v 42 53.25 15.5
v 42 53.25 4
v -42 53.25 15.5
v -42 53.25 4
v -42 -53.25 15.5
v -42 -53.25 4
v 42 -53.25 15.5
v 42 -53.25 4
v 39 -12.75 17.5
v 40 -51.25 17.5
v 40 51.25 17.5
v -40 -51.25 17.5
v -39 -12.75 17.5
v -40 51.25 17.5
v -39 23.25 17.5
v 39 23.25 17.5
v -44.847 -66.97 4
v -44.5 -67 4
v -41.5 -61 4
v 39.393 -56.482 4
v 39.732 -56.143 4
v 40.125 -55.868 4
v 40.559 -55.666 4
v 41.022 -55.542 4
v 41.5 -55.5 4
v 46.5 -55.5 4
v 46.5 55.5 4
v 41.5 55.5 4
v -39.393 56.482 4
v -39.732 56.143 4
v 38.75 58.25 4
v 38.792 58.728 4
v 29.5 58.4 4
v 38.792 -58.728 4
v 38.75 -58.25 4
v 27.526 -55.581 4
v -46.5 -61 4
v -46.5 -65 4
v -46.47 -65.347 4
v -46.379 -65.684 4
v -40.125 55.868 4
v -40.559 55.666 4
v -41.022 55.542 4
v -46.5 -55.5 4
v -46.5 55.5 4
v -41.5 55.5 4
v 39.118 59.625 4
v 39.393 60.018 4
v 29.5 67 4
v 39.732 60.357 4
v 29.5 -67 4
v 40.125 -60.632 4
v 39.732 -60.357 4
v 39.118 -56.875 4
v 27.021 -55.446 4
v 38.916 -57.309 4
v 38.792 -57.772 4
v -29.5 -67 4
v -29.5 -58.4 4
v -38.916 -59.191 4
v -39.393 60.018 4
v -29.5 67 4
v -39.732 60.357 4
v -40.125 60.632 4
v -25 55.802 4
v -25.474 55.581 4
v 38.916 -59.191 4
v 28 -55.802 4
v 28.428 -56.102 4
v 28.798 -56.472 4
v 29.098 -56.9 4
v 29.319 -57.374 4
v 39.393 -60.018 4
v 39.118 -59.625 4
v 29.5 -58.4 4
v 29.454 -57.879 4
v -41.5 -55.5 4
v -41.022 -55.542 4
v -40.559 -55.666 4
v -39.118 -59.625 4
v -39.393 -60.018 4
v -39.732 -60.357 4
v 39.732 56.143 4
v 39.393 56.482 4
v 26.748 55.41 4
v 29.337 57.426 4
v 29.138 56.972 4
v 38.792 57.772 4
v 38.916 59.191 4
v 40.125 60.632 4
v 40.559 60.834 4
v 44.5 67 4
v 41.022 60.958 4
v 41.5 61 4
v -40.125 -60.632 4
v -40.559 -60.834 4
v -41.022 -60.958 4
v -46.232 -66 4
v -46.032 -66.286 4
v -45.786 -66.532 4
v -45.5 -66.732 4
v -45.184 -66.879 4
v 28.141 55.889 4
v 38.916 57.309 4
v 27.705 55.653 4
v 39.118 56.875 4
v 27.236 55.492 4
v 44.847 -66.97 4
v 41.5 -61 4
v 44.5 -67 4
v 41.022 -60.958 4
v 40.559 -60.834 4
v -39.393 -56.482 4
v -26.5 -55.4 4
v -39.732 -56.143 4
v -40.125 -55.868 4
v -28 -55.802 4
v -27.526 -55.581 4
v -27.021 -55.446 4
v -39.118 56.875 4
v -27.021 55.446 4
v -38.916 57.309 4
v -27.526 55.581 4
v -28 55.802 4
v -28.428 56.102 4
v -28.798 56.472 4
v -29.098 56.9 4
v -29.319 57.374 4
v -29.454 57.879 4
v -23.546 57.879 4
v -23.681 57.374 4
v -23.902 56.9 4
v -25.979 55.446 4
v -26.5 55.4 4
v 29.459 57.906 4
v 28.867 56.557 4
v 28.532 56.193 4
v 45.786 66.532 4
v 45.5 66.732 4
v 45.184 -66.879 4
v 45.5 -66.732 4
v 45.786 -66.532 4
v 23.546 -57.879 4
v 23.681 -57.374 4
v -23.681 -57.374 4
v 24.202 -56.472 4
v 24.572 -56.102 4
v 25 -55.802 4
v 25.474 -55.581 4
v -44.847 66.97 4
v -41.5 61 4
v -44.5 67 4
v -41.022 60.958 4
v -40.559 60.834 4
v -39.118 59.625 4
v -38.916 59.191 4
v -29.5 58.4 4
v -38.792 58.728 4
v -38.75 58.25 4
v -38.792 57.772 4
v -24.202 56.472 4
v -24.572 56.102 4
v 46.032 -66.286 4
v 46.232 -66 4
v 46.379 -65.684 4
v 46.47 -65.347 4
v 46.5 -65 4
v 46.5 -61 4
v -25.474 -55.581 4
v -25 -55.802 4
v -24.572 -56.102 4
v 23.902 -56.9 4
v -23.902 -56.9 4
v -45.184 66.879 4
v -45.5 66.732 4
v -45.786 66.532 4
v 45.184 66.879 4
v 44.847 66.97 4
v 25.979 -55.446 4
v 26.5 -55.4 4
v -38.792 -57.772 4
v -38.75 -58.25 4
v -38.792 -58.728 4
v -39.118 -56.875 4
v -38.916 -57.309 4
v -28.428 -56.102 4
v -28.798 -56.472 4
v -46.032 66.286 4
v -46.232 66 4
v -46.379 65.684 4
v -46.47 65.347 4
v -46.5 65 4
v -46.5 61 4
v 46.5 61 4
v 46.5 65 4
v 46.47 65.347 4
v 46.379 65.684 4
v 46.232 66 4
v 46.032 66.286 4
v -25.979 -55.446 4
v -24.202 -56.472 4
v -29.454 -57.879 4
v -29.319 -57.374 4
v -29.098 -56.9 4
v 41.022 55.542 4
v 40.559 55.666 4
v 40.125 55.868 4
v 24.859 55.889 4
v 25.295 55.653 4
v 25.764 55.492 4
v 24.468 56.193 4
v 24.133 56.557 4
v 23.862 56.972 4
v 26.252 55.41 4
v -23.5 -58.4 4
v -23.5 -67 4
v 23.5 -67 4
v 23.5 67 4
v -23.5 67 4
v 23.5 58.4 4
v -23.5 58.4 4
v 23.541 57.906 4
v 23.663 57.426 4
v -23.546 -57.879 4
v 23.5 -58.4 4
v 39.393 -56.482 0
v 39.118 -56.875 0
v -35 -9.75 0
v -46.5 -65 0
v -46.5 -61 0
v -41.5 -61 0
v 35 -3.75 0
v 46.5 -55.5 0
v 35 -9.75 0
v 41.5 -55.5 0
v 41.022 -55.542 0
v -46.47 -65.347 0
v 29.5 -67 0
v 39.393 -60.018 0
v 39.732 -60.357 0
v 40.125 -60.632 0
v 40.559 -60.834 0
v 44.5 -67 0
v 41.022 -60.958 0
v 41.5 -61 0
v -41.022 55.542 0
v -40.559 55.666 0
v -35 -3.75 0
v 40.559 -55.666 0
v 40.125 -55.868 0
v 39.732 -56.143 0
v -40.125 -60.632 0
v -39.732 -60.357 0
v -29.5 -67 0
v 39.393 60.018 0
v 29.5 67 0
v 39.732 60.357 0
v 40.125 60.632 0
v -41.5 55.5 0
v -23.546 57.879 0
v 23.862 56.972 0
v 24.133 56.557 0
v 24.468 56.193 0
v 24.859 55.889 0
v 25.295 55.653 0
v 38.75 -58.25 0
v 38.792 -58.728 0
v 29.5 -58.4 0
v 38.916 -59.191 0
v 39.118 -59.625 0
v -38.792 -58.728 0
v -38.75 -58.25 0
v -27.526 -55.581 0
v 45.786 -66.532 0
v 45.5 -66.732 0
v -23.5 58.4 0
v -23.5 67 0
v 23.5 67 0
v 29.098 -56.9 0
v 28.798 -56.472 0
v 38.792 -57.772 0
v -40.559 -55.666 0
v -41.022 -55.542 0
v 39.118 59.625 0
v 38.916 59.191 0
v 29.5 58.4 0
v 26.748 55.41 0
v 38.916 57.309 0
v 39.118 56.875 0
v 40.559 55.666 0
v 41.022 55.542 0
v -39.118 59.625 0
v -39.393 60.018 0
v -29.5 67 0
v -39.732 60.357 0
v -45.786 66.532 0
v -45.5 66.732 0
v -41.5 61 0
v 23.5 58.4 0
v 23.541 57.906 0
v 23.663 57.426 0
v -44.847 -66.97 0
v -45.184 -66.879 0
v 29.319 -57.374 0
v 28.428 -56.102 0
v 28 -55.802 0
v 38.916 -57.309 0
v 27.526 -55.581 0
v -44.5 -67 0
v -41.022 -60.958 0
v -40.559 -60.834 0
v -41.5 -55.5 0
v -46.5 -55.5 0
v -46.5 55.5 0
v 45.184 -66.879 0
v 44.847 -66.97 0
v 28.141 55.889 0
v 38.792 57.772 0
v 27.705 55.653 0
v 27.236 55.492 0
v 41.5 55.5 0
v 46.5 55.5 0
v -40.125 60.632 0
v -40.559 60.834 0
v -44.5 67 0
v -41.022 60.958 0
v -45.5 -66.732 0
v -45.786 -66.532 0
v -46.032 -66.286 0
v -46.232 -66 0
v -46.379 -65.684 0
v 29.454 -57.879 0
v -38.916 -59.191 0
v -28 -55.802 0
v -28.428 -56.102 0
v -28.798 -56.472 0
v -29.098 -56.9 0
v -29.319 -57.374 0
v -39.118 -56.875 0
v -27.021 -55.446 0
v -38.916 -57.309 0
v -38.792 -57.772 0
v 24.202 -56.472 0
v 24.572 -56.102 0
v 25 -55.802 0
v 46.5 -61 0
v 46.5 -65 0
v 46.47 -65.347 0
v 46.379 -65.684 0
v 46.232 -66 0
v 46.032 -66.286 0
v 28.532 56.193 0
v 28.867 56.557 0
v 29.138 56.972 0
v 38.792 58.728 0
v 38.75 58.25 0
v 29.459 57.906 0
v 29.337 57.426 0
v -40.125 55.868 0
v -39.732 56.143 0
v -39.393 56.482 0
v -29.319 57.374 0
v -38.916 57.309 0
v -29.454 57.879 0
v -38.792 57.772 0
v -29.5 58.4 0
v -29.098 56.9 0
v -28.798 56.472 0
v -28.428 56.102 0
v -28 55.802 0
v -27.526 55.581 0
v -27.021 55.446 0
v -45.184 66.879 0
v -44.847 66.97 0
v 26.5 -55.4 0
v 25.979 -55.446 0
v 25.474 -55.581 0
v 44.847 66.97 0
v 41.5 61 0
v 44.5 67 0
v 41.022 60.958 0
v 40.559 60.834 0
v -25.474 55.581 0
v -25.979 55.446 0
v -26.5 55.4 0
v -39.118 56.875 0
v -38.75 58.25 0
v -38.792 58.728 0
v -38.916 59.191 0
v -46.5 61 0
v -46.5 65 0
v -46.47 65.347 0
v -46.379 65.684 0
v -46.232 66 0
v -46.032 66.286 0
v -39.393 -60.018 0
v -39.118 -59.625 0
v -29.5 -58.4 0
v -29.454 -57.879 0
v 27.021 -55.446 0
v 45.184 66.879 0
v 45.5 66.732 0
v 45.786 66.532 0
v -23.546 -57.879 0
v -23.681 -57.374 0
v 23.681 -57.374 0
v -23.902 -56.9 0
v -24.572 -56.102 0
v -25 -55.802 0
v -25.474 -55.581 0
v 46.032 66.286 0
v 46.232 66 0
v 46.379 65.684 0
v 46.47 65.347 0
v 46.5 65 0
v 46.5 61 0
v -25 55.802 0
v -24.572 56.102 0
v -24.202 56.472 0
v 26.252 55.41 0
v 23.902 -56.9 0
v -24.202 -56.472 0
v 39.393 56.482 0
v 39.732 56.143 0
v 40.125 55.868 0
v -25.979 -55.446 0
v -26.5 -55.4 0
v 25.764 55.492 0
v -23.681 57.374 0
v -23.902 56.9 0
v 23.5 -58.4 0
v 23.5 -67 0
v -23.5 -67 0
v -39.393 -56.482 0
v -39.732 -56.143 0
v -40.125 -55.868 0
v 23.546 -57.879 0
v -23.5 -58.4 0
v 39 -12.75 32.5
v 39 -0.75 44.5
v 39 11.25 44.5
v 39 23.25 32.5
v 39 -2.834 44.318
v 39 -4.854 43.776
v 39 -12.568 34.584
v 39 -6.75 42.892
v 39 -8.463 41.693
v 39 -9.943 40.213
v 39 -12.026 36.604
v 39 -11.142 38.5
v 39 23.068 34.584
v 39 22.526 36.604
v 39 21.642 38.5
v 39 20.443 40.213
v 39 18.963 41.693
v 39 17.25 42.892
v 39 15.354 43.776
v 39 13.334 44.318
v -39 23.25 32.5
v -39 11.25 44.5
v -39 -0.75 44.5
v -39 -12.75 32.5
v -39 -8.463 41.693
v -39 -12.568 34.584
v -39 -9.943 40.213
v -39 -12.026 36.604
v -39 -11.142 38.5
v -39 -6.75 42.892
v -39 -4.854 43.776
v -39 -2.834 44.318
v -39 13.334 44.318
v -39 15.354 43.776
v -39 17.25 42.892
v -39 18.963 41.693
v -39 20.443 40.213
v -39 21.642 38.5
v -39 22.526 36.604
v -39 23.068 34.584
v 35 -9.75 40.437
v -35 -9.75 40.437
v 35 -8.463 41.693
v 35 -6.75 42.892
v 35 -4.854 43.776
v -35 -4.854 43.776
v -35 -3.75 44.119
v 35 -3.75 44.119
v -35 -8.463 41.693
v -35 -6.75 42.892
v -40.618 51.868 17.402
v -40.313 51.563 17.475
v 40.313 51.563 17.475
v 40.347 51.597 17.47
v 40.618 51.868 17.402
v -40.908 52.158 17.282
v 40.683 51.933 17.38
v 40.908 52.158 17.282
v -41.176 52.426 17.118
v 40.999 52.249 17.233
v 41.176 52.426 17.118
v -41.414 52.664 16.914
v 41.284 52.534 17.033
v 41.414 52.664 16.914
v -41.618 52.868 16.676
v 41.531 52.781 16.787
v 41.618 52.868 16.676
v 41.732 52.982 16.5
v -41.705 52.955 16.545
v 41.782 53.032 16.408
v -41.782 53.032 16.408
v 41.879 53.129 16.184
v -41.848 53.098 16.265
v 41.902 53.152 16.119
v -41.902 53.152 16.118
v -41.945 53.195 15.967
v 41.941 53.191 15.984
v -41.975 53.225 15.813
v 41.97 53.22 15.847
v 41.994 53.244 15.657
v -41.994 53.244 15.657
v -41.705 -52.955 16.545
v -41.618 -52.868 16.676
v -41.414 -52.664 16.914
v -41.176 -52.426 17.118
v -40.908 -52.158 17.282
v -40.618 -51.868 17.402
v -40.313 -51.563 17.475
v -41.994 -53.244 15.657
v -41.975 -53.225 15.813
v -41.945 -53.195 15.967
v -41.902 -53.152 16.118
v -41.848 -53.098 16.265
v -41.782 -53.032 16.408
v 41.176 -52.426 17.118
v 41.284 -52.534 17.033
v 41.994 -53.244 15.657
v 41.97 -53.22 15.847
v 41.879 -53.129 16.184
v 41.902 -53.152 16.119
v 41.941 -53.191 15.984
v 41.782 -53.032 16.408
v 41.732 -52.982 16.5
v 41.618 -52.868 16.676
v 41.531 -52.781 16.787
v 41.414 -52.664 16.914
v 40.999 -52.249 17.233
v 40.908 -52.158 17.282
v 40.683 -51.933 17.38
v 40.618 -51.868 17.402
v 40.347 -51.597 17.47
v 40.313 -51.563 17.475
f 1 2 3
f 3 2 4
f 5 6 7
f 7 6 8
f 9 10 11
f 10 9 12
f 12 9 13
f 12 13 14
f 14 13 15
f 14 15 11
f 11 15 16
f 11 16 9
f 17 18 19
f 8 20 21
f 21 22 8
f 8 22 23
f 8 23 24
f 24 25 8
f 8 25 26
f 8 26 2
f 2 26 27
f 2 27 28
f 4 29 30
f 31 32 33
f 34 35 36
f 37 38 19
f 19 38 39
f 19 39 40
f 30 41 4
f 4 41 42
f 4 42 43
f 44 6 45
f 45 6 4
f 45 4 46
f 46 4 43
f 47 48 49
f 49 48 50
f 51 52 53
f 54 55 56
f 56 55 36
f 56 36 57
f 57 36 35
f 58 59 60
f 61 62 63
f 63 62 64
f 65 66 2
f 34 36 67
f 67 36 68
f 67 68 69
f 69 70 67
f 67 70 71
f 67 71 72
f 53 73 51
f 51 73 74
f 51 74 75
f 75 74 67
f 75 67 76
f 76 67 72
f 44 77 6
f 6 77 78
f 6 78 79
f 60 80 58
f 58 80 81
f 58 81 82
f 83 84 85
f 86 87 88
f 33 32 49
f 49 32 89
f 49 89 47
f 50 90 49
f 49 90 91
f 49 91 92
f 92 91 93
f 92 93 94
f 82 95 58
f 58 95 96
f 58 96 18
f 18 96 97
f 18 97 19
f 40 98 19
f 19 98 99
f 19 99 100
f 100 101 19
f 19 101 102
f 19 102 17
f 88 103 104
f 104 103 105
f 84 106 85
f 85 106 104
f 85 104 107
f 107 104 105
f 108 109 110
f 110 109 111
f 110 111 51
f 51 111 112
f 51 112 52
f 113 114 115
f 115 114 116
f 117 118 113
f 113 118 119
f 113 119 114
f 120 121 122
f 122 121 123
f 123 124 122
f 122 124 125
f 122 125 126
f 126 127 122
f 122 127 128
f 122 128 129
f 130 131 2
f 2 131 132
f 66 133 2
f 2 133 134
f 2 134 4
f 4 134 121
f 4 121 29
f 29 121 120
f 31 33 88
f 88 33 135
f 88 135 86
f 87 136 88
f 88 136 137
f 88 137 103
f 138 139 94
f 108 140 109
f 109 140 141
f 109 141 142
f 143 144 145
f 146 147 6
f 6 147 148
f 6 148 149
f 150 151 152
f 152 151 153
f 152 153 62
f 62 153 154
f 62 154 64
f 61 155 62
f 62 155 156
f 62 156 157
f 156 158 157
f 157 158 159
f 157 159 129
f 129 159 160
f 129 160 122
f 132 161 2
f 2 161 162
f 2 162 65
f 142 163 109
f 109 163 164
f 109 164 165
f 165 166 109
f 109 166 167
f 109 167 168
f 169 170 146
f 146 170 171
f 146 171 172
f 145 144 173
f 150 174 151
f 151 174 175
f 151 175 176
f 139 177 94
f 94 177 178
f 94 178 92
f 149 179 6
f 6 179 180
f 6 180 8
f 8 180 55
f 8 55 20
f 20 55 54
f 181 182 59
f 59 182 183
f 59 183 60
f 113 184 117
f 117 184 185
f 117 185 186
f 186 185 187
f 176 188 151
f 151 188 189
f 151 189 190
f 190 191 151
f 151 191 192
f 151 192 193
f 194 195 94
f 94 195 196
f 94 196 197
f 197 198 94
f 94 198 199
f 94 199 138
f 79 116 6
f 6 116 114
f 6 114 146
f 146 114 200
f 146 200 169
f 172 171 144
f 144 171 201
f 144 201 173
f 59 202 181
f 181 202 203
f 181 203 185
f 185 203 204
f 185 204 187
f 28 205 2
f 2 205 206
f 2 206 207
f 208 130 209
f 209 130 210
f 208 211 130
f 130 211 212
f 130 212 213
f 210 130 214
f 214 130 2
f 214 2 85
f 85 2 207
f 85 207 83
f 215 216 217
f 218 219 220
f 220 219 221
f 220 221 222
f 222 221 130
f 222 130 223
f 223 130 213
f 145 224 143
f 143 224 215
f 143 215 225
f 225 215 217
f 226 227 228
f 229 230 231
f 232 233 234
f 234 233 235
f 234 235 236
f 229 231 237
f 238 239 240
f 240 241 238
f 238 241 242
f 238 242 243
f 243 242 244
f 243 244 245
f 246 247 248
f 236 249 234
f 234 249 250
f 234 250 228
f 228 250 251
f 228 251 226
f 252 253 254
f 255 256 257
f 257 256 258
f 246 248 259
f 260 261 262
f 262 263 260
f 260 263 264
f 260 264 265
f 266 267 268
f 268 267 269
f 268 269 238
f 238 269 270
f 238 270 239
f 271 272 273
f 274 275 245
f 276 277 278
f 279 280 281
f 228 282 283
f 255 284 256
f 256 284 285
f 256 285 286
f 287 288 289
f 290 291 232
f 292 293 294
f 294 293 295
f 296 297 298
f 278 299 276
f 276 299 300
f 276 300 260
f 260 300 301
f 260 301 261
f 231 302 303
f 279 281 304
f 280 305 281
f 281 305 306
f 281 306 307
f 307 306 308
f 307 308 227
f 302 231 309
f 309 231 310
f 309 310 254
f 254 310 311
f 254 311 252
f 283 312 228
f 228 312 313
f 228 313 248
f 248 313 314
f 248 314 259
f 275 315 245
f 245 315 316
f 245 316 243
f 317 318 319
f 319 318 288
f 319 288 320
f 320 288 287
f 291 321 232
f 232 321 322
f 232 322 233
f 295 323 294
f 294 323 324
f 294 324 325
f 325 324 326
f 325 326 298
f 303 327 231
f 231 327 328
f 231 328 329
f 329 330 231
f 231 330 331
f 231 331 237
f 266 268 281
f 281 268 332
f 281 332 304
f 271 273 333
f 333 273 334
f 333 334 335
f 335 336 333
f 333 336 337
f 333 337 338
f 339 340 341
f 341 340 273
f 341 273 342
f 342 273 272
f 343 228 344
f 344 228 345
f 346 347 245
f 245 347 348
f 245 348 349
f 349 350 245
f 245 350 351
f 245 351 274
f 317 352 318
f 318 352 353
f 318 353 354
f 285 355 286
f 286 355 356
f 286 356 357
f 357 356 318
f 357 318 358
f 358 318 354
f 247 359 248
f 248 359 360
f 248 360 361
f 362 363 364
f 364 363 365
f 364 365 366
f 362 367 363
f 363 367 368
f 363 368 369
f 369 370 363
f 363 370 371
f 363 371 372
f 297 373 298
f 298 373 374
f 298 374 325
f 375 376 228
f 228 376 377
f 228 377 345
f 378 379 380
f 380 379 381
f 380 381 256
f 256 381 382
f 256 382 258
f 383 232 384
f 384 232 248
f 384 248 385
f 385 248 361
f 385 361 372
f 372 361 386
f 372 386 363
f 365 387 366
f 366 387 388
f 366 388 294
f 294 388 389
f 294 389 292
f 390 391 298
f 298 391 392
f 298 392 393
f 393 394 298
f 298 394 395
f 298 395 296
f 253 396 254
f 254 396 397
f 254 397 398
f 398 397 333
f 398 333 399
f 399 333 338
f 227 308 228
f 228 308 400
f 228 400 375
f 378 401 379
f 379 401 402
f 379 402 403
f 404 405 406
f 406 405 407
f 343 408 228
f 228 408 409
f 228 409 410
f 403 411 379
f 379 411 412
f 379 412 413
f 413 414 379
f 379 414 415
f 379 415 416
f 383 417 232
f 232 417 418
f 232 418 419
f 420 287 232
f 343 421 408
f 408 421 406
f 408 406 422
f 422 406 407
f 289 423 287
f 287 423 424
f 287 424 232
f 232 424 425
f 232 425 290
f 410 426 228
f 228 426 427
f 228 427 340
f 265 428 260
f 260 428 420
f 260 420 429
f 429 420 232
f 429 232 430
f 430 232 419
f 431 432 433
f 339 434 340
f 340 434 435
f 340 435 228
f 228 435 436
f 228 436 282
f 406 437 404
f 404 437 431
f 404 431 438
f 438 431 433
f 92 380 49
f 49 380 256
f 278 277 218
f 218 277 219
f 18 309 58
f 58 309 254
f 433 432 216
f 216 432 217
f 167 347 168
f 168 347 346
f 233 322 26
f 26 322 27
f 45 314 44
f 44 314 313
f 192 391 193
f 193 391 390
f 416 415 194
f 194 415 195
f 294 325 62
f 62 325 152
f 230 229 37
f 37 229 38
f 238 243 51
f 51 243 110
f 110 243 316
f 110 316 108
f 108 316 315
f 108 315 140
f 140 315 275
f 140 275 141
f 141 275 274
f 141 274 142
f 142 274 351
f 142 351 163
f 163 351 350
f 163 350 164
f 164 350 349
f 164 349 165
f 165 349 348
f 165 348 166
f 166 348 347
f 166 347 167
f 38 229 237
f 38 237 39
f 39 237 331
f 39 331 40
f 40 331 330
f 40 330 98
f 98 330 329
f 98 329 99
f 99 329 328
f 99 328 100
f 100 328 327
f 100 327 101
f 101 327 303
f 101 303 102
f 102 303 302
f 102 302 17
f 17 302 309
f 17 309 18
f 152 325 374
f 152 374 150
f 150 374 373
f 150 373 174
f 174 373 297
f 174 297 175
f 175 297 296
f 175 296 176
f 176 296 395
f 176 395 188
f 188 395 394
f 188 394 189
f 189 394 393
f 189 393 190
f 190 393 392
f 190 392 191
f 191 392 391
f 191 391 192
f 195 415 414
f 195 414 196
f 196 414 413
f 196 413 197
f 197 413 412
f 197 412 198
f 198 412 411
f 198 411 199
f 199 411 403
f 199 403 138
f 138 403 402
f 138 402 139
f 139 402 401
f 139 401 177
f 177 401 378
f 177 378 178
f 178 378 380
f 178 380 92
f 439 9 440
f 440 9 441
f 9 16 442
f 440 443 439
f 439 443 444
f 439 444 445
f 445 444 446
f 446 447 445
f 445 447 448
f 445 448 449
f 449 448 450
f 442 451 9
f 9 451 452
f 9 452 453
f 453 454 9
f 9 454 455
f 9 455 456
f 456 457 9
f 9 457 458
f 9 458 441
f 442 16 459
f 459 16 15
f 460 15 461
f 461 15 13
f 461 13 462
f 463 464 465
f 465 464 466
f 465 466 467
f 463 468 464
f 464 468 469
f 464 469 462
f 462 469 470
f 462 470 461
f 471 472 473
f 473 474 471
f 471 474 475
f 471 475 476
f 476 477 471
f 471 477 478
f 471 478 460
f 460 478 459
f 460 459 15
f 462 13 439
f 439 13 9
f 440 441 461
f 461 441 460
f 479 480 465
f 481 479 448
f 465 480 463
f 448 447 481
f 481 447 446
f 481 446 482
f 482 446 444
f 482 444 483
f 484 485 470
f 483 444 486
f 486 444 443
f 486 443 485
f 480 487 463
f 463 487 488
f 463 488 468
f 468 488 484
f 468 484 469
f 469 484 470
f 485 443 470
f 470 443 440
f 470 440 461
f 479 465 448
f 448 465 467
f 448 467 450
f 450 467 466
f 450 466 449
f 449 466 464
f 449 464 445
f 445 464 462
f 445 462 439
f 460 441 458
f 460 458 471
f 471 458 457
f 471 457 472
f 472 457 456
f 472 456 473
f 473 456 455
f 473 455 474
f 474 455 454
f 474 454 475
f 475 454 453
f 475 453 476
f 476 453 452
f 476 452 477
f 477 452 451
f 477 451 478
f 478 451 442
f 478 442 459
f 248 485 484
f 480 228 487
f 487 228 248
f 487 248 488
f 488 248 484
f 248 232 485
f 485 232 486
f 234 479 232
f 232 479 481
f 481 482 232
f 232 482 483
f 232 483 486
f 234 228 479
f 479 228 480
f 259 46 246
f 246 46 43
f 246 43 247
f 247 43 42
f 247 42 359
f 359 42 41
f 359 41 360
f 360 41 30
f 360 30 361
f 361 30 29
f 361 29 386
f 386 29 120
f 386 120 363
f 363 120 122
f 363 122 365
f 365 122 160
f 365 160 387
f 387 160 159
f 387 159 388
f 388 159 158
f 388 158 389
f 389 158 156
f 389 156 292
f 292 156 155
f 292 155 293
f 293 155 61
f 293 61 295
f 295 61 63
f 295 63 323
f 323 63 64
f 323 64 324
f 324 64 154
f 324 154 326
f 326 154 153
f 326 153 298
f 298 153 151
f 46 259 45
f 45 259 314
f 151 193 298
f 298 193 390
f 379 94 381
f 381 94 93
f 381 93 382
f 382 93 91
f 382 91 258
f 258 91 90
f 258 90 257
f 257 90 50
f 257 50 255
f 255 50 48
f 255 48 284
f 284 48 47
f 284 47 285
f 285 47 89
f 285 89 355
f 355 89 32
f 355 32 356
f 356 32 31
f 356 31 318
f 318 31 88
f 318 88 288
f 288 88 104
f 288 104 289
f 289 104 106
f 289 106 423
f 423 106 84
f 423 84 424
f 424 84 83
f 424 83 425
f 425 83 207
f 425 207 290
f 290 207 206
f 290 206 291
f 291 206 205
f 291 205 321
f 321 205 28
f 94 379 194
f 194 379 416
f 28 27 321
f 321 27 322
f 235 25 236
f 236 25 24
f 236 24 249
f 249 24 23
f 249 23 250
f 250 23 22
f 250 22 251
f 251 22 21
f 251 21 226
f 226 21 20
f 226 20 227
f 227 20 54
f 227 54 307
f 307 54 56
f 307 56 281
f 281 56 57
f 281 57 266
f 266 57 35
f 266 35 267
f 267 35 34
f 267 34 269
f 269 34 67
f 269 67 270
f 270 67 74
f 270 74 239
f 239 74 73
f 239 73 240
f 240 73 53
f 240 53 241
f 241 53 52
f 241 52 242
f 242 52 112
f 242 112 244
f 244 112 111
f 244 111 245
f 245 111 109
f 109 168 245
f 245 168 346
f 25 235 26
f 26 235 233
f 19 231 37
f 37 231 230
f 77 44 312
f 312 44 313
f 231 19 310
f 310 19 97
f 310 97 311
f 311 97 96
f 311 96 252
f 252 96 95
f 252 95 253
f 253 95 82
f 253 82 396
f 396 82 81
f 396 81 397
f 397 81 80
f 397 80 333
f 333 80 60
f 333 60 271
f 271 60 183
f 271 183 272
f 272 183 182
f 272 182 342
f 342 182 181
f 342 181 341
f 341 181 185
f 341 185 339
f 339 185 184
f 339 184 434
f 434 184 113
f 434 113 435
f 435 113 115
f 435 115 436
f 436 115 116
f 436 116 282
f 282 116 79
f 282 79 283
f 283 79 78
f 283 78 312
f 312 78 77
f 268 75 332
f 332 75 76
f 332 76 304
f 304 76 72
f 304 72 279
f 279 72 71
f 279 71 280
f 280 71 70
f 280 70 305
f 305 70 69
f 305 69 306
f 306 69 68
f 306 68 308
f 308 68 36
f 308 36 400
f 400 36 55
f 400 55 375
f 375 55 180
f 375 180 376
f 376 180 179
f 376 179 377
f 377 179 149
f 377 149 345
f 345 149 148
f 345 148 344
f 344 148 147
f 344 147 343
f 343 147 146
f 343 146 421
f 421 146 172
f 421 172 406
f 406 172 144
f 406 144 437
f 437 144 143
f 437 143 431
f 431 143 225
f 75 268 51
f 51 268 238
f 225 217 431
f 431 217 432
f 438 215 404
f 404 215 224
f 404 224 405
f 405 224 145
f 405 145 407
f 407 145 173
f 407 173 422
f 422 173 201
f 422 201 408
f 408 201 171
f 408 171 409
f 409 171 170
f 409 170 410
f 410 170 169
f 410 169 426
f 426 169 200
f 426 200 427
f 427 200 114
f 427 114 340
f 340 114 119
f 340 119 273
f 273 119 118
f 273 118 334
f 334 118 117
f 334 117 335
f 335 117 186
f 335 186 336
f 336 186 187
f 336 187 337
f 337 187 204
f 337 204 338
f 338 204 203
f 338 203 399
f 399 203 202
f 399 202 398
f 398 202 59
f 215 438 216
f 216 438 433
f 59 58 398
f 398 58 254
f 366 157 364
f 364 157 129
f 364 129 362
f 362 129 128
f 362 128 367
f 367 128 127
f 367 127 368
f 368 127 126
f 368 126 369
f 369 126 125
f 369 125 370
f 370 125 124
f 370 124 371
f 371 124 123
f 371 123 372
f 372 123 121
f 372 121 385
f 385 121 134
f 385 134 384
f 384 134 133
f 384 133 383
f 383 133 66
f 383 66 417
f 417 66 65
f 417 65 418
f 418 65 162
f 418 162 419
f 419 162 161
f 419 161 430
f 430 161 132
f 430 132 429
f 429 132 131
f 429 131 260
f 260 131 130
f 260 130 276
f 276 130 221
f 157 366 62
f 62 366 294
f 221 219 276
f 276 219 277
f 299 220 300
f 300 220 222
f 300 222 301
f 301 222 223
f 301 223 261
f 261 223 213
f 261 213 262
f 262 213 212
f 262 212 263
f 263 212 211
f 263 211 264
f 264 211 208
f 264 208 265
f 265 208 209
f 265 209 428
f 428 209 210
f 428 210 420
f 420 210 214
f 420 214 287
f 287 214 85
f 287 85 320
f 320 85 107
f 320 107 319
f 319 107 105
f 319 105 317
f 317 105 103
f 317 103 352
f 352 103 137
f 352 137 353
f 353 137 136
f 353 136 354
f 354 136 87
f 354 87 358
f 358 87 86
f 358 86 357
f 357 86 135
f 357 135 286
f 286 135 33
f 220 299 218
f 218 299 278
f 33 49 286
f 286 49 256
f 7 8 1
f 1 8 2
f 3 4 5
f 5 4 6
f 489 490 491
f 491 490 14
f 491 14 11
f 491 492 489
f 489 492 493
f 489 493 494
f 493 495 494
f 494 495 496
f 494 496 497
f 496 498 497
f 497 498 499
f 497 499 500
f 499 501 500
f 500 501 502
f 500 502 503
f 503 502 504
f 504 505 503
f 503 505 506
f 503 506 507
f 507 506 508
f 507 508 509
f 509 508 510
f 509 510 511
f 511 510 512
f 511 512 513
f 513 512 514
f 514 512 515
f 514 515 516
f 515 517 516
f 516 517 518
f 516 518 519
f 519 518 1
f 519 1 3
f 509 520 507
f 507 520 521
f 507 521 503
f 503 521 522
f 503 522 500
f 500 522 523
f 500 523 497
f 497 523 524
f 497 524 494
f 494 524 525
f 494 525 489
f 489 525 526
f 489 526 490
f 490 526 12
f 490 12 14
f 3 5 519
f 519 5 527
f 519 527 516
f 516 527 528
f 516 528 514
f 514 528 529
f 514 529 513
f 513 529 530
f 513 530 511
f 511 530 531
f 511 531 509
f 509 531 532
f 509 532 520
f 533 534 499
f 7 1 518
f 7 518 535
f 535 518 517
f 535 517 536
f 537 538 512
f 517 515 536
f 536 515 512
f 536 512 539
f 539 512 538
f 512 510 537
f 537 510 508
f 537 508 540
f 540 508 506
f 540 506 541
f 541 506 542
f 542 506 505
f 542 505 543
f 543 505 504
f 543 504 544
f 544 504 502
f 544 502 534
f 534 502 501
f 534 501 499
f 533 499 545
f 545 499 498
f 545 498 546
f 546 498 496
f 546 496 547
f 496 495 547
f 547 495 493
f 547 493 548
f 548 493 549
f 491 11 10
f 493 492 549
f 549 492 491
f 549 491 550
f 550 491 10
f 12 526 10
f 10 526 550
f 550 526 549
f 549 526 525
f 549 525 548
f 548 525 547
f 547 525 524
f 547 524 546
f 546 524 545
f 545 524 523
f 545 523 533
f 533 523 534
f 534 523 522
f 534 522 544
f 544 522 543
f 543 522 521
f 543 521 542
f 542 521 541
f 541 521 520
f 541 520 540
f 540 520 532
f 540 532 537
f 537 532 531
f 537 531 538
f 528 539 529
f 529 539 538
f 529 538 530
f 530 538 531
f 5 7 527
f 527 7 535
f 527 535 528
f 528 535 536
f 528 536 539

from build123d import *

# Parameters (mm, degrees)
SKETCH1_W           = 93
SKETCH1_H           = 134
BOSS_EXTRUDE1_DEPTH = 4
SKETCH2_W           = 88
SKETCH2_H           = 106.5
BOSS_EXTRUDE2_DEPTH = 13.5
FILLET2_R           = 2
SKETCH5_W           = 78
SKETCH5_H           = 36
BOSS_EXTRUDE3_DEPTH = 27
FILLET3_R           = 12
SKETCH6_W           = 70
SKETCH6_H           = 6
CUT_EXTRUDE1_DEPTH  = 45.5
SKETCH9_R           = 2.75
SKETCH9_W           = 5
SKETCH9_H           = 5.5
CUT_EXTRUDE3_DEPTH  = 10
CUT_EXTRUDE6_DEPTH  = 10
SKETCH13_W          = 2
SKETCH13_H          = 106.5
CUT_EXTRUDE7_DEPTH  = 13.5
FILLET4_R           = 2


with BuildPart() as part:
    # Sketch1 → Boss-Extrude1 (new body)
    with BuildSketch(Plane.XY):
        Rectangle(SKETCH1_W, SKETCH1_H)
    extrude(amount=BOSS_EXTRUDE1_DEPTH)

    # Sketch2 → Boss-Extrude2 (add)
    with BuildSketch(Plane.XY.offset(4)):
        Rectangle(SKETCH2_W, SKETCH2_H)
    extrude(amount=BOSS_EXTRUDE2_DEPTH)

    # Fillet2
    fillet2_edges = [part.edges().sort_by_distance(p)[0] for p in [
        (46.5, -67, 2),
        (-46.5, -67, 2),
        (-46.5, 67, 2),
        (46.5, 67, 2),
    ]]
    fillet(fillet2_edges, radius=FILLET2_R)

    # Sketch5 → Boss-Extrude3 (add)
    with BuildSketch(Plane.XY.offset(17.5)):
        with Locations((0, 5.25)):
            Rectangle(SKETCH5_W, SKETCH5_H)
    extrude(amount=BOSS_EXTRUDE3_DEPTH)

    # Fillet3
    fillet3_edges = [part.edges().sort_by_distance(p)[0] for p in [
        (0, 23.25, 44.5),
        (0, -12.75, 44.5),
    ]]
    fillet(fillet3_edges, radius=FILLET3_R)

    # Sketch6 → Cut-Extrude1 (cut, through all)
    with BuildSketch(Plane.XY.offset(44.5)):
        with Locations((0, -6.75)):
            Rectangle(SKETCH6_W, SKETCH6_H)
    extrude(amount=-CUT_EXTRUDE1_DEPTH, mode=Mode.SUBTRACT)

    # Sketch9 → Cut-Extrude3 (cut)
    with BuildSketch(Plane.XY.offset(4)):
        with Locations((41.5, 58.25)):
            Circle(SKETCH9_R)
        with Locations((-41.5, 58.25)):
            Circle(SKETCH9_R)
        with Locations((-41.5, -58.25)):
            Circle(SKETCH9_R)
        with Locations((41.5, -58.25)):
            Circle(SKETCH9_R)
        with Locations((44, 58.25)):
            Rectangle(SKETCH9_W, SKETCH9_H)
        with Locations((-44, 58.25)):
            Rectangle(SKETCH9_W, SKETCH9_H)
        with Locations((-44, -58.25)):
            Rectangle(SKETCH9_W, SKETCH9_H)
        with Locations((44, -58.25)):
            Rectangle(SKETCH9_W, SKETCH9_H)
    extrude(amount=-CUT_EXTRUDE3_DEPTH, mode=Mode.SUBTRACT)

    # Sketch8 → Cut-Extrude6 (cut)
    with BuildSketch(Plane.XY.offset(4)):
        with BuildLine():
            Line((29.5, 67), (23.5, 67))
            Line((23.5, 67), (23.5, 58.4))
            ThreePointArc((23.5, 58.4), (26.5, 55.4), (29.5, 58.4))
            Line((29.5, 58.4), (29.5, 67))
        make_face()
        with BuildLine():
            ThreePointArc((-29.5, 58.4), (-26.5, 55.4), (-23.5, 58.4))
            Line((-23.5, 58.4), (-23.5, 67))
            Line((-23.5, 67), (-29.5, 67))
            Line((-29.5, 67), (-29.5, 58.4))
        make_face()
        with BuildLine():
            Line((-29.5, -67), (-23.5, -67))
            Line((-23.5, -67), (-23.5, -58.4))
            ThreePointArc((-23.5, -58.4), (-26.5, -55.4), (-29.5, -58.4))
            Line((-29.5, -58.4), (-29.5, -67))
        make_face()
        with BuildLine():
            ThreePointArc((29.5, -58.4), (26.5, -55.4), (23.5, -58.4))
            Line((23.5, -58.4), (23.5, -67))
            Line((23.5, -67), (29.5, -67))
            Line((29.5, -67), (29.5, -58.4))
        make_face()
    extrude(amount=-CUT_EXTRUDE6_DEPTH, mode=Mode.SUBTRACT)

    # Sketch13 → Cut-Extrude7 (cut)
    with BuildSketch(Plane.XY.offset(17.5)):
        with Locations((-43, 0)):
            Rectangle(SKETCH13_W, SKETCH13_H)
        with Locations((43, 0)):
            Rectangle(SKETCH13_W, SKETCH13_H)
    extrude(amount=-CUT_EXTRUDE7_DEPTH, mode=Mode.SUBTRACT)

    # Fillet4
    fillet4_edges = [part.edges().sort_by_distance(p)[0] for p in [
        (0, 53.25, 17.5),
        (0, -53.25, 17.5),
        (-42, 0, 17.5),
        (42, 0, 17.5),
    ]]
    fillet(fillet4_edges, radius=FILLET4_R)


solid = part.part
